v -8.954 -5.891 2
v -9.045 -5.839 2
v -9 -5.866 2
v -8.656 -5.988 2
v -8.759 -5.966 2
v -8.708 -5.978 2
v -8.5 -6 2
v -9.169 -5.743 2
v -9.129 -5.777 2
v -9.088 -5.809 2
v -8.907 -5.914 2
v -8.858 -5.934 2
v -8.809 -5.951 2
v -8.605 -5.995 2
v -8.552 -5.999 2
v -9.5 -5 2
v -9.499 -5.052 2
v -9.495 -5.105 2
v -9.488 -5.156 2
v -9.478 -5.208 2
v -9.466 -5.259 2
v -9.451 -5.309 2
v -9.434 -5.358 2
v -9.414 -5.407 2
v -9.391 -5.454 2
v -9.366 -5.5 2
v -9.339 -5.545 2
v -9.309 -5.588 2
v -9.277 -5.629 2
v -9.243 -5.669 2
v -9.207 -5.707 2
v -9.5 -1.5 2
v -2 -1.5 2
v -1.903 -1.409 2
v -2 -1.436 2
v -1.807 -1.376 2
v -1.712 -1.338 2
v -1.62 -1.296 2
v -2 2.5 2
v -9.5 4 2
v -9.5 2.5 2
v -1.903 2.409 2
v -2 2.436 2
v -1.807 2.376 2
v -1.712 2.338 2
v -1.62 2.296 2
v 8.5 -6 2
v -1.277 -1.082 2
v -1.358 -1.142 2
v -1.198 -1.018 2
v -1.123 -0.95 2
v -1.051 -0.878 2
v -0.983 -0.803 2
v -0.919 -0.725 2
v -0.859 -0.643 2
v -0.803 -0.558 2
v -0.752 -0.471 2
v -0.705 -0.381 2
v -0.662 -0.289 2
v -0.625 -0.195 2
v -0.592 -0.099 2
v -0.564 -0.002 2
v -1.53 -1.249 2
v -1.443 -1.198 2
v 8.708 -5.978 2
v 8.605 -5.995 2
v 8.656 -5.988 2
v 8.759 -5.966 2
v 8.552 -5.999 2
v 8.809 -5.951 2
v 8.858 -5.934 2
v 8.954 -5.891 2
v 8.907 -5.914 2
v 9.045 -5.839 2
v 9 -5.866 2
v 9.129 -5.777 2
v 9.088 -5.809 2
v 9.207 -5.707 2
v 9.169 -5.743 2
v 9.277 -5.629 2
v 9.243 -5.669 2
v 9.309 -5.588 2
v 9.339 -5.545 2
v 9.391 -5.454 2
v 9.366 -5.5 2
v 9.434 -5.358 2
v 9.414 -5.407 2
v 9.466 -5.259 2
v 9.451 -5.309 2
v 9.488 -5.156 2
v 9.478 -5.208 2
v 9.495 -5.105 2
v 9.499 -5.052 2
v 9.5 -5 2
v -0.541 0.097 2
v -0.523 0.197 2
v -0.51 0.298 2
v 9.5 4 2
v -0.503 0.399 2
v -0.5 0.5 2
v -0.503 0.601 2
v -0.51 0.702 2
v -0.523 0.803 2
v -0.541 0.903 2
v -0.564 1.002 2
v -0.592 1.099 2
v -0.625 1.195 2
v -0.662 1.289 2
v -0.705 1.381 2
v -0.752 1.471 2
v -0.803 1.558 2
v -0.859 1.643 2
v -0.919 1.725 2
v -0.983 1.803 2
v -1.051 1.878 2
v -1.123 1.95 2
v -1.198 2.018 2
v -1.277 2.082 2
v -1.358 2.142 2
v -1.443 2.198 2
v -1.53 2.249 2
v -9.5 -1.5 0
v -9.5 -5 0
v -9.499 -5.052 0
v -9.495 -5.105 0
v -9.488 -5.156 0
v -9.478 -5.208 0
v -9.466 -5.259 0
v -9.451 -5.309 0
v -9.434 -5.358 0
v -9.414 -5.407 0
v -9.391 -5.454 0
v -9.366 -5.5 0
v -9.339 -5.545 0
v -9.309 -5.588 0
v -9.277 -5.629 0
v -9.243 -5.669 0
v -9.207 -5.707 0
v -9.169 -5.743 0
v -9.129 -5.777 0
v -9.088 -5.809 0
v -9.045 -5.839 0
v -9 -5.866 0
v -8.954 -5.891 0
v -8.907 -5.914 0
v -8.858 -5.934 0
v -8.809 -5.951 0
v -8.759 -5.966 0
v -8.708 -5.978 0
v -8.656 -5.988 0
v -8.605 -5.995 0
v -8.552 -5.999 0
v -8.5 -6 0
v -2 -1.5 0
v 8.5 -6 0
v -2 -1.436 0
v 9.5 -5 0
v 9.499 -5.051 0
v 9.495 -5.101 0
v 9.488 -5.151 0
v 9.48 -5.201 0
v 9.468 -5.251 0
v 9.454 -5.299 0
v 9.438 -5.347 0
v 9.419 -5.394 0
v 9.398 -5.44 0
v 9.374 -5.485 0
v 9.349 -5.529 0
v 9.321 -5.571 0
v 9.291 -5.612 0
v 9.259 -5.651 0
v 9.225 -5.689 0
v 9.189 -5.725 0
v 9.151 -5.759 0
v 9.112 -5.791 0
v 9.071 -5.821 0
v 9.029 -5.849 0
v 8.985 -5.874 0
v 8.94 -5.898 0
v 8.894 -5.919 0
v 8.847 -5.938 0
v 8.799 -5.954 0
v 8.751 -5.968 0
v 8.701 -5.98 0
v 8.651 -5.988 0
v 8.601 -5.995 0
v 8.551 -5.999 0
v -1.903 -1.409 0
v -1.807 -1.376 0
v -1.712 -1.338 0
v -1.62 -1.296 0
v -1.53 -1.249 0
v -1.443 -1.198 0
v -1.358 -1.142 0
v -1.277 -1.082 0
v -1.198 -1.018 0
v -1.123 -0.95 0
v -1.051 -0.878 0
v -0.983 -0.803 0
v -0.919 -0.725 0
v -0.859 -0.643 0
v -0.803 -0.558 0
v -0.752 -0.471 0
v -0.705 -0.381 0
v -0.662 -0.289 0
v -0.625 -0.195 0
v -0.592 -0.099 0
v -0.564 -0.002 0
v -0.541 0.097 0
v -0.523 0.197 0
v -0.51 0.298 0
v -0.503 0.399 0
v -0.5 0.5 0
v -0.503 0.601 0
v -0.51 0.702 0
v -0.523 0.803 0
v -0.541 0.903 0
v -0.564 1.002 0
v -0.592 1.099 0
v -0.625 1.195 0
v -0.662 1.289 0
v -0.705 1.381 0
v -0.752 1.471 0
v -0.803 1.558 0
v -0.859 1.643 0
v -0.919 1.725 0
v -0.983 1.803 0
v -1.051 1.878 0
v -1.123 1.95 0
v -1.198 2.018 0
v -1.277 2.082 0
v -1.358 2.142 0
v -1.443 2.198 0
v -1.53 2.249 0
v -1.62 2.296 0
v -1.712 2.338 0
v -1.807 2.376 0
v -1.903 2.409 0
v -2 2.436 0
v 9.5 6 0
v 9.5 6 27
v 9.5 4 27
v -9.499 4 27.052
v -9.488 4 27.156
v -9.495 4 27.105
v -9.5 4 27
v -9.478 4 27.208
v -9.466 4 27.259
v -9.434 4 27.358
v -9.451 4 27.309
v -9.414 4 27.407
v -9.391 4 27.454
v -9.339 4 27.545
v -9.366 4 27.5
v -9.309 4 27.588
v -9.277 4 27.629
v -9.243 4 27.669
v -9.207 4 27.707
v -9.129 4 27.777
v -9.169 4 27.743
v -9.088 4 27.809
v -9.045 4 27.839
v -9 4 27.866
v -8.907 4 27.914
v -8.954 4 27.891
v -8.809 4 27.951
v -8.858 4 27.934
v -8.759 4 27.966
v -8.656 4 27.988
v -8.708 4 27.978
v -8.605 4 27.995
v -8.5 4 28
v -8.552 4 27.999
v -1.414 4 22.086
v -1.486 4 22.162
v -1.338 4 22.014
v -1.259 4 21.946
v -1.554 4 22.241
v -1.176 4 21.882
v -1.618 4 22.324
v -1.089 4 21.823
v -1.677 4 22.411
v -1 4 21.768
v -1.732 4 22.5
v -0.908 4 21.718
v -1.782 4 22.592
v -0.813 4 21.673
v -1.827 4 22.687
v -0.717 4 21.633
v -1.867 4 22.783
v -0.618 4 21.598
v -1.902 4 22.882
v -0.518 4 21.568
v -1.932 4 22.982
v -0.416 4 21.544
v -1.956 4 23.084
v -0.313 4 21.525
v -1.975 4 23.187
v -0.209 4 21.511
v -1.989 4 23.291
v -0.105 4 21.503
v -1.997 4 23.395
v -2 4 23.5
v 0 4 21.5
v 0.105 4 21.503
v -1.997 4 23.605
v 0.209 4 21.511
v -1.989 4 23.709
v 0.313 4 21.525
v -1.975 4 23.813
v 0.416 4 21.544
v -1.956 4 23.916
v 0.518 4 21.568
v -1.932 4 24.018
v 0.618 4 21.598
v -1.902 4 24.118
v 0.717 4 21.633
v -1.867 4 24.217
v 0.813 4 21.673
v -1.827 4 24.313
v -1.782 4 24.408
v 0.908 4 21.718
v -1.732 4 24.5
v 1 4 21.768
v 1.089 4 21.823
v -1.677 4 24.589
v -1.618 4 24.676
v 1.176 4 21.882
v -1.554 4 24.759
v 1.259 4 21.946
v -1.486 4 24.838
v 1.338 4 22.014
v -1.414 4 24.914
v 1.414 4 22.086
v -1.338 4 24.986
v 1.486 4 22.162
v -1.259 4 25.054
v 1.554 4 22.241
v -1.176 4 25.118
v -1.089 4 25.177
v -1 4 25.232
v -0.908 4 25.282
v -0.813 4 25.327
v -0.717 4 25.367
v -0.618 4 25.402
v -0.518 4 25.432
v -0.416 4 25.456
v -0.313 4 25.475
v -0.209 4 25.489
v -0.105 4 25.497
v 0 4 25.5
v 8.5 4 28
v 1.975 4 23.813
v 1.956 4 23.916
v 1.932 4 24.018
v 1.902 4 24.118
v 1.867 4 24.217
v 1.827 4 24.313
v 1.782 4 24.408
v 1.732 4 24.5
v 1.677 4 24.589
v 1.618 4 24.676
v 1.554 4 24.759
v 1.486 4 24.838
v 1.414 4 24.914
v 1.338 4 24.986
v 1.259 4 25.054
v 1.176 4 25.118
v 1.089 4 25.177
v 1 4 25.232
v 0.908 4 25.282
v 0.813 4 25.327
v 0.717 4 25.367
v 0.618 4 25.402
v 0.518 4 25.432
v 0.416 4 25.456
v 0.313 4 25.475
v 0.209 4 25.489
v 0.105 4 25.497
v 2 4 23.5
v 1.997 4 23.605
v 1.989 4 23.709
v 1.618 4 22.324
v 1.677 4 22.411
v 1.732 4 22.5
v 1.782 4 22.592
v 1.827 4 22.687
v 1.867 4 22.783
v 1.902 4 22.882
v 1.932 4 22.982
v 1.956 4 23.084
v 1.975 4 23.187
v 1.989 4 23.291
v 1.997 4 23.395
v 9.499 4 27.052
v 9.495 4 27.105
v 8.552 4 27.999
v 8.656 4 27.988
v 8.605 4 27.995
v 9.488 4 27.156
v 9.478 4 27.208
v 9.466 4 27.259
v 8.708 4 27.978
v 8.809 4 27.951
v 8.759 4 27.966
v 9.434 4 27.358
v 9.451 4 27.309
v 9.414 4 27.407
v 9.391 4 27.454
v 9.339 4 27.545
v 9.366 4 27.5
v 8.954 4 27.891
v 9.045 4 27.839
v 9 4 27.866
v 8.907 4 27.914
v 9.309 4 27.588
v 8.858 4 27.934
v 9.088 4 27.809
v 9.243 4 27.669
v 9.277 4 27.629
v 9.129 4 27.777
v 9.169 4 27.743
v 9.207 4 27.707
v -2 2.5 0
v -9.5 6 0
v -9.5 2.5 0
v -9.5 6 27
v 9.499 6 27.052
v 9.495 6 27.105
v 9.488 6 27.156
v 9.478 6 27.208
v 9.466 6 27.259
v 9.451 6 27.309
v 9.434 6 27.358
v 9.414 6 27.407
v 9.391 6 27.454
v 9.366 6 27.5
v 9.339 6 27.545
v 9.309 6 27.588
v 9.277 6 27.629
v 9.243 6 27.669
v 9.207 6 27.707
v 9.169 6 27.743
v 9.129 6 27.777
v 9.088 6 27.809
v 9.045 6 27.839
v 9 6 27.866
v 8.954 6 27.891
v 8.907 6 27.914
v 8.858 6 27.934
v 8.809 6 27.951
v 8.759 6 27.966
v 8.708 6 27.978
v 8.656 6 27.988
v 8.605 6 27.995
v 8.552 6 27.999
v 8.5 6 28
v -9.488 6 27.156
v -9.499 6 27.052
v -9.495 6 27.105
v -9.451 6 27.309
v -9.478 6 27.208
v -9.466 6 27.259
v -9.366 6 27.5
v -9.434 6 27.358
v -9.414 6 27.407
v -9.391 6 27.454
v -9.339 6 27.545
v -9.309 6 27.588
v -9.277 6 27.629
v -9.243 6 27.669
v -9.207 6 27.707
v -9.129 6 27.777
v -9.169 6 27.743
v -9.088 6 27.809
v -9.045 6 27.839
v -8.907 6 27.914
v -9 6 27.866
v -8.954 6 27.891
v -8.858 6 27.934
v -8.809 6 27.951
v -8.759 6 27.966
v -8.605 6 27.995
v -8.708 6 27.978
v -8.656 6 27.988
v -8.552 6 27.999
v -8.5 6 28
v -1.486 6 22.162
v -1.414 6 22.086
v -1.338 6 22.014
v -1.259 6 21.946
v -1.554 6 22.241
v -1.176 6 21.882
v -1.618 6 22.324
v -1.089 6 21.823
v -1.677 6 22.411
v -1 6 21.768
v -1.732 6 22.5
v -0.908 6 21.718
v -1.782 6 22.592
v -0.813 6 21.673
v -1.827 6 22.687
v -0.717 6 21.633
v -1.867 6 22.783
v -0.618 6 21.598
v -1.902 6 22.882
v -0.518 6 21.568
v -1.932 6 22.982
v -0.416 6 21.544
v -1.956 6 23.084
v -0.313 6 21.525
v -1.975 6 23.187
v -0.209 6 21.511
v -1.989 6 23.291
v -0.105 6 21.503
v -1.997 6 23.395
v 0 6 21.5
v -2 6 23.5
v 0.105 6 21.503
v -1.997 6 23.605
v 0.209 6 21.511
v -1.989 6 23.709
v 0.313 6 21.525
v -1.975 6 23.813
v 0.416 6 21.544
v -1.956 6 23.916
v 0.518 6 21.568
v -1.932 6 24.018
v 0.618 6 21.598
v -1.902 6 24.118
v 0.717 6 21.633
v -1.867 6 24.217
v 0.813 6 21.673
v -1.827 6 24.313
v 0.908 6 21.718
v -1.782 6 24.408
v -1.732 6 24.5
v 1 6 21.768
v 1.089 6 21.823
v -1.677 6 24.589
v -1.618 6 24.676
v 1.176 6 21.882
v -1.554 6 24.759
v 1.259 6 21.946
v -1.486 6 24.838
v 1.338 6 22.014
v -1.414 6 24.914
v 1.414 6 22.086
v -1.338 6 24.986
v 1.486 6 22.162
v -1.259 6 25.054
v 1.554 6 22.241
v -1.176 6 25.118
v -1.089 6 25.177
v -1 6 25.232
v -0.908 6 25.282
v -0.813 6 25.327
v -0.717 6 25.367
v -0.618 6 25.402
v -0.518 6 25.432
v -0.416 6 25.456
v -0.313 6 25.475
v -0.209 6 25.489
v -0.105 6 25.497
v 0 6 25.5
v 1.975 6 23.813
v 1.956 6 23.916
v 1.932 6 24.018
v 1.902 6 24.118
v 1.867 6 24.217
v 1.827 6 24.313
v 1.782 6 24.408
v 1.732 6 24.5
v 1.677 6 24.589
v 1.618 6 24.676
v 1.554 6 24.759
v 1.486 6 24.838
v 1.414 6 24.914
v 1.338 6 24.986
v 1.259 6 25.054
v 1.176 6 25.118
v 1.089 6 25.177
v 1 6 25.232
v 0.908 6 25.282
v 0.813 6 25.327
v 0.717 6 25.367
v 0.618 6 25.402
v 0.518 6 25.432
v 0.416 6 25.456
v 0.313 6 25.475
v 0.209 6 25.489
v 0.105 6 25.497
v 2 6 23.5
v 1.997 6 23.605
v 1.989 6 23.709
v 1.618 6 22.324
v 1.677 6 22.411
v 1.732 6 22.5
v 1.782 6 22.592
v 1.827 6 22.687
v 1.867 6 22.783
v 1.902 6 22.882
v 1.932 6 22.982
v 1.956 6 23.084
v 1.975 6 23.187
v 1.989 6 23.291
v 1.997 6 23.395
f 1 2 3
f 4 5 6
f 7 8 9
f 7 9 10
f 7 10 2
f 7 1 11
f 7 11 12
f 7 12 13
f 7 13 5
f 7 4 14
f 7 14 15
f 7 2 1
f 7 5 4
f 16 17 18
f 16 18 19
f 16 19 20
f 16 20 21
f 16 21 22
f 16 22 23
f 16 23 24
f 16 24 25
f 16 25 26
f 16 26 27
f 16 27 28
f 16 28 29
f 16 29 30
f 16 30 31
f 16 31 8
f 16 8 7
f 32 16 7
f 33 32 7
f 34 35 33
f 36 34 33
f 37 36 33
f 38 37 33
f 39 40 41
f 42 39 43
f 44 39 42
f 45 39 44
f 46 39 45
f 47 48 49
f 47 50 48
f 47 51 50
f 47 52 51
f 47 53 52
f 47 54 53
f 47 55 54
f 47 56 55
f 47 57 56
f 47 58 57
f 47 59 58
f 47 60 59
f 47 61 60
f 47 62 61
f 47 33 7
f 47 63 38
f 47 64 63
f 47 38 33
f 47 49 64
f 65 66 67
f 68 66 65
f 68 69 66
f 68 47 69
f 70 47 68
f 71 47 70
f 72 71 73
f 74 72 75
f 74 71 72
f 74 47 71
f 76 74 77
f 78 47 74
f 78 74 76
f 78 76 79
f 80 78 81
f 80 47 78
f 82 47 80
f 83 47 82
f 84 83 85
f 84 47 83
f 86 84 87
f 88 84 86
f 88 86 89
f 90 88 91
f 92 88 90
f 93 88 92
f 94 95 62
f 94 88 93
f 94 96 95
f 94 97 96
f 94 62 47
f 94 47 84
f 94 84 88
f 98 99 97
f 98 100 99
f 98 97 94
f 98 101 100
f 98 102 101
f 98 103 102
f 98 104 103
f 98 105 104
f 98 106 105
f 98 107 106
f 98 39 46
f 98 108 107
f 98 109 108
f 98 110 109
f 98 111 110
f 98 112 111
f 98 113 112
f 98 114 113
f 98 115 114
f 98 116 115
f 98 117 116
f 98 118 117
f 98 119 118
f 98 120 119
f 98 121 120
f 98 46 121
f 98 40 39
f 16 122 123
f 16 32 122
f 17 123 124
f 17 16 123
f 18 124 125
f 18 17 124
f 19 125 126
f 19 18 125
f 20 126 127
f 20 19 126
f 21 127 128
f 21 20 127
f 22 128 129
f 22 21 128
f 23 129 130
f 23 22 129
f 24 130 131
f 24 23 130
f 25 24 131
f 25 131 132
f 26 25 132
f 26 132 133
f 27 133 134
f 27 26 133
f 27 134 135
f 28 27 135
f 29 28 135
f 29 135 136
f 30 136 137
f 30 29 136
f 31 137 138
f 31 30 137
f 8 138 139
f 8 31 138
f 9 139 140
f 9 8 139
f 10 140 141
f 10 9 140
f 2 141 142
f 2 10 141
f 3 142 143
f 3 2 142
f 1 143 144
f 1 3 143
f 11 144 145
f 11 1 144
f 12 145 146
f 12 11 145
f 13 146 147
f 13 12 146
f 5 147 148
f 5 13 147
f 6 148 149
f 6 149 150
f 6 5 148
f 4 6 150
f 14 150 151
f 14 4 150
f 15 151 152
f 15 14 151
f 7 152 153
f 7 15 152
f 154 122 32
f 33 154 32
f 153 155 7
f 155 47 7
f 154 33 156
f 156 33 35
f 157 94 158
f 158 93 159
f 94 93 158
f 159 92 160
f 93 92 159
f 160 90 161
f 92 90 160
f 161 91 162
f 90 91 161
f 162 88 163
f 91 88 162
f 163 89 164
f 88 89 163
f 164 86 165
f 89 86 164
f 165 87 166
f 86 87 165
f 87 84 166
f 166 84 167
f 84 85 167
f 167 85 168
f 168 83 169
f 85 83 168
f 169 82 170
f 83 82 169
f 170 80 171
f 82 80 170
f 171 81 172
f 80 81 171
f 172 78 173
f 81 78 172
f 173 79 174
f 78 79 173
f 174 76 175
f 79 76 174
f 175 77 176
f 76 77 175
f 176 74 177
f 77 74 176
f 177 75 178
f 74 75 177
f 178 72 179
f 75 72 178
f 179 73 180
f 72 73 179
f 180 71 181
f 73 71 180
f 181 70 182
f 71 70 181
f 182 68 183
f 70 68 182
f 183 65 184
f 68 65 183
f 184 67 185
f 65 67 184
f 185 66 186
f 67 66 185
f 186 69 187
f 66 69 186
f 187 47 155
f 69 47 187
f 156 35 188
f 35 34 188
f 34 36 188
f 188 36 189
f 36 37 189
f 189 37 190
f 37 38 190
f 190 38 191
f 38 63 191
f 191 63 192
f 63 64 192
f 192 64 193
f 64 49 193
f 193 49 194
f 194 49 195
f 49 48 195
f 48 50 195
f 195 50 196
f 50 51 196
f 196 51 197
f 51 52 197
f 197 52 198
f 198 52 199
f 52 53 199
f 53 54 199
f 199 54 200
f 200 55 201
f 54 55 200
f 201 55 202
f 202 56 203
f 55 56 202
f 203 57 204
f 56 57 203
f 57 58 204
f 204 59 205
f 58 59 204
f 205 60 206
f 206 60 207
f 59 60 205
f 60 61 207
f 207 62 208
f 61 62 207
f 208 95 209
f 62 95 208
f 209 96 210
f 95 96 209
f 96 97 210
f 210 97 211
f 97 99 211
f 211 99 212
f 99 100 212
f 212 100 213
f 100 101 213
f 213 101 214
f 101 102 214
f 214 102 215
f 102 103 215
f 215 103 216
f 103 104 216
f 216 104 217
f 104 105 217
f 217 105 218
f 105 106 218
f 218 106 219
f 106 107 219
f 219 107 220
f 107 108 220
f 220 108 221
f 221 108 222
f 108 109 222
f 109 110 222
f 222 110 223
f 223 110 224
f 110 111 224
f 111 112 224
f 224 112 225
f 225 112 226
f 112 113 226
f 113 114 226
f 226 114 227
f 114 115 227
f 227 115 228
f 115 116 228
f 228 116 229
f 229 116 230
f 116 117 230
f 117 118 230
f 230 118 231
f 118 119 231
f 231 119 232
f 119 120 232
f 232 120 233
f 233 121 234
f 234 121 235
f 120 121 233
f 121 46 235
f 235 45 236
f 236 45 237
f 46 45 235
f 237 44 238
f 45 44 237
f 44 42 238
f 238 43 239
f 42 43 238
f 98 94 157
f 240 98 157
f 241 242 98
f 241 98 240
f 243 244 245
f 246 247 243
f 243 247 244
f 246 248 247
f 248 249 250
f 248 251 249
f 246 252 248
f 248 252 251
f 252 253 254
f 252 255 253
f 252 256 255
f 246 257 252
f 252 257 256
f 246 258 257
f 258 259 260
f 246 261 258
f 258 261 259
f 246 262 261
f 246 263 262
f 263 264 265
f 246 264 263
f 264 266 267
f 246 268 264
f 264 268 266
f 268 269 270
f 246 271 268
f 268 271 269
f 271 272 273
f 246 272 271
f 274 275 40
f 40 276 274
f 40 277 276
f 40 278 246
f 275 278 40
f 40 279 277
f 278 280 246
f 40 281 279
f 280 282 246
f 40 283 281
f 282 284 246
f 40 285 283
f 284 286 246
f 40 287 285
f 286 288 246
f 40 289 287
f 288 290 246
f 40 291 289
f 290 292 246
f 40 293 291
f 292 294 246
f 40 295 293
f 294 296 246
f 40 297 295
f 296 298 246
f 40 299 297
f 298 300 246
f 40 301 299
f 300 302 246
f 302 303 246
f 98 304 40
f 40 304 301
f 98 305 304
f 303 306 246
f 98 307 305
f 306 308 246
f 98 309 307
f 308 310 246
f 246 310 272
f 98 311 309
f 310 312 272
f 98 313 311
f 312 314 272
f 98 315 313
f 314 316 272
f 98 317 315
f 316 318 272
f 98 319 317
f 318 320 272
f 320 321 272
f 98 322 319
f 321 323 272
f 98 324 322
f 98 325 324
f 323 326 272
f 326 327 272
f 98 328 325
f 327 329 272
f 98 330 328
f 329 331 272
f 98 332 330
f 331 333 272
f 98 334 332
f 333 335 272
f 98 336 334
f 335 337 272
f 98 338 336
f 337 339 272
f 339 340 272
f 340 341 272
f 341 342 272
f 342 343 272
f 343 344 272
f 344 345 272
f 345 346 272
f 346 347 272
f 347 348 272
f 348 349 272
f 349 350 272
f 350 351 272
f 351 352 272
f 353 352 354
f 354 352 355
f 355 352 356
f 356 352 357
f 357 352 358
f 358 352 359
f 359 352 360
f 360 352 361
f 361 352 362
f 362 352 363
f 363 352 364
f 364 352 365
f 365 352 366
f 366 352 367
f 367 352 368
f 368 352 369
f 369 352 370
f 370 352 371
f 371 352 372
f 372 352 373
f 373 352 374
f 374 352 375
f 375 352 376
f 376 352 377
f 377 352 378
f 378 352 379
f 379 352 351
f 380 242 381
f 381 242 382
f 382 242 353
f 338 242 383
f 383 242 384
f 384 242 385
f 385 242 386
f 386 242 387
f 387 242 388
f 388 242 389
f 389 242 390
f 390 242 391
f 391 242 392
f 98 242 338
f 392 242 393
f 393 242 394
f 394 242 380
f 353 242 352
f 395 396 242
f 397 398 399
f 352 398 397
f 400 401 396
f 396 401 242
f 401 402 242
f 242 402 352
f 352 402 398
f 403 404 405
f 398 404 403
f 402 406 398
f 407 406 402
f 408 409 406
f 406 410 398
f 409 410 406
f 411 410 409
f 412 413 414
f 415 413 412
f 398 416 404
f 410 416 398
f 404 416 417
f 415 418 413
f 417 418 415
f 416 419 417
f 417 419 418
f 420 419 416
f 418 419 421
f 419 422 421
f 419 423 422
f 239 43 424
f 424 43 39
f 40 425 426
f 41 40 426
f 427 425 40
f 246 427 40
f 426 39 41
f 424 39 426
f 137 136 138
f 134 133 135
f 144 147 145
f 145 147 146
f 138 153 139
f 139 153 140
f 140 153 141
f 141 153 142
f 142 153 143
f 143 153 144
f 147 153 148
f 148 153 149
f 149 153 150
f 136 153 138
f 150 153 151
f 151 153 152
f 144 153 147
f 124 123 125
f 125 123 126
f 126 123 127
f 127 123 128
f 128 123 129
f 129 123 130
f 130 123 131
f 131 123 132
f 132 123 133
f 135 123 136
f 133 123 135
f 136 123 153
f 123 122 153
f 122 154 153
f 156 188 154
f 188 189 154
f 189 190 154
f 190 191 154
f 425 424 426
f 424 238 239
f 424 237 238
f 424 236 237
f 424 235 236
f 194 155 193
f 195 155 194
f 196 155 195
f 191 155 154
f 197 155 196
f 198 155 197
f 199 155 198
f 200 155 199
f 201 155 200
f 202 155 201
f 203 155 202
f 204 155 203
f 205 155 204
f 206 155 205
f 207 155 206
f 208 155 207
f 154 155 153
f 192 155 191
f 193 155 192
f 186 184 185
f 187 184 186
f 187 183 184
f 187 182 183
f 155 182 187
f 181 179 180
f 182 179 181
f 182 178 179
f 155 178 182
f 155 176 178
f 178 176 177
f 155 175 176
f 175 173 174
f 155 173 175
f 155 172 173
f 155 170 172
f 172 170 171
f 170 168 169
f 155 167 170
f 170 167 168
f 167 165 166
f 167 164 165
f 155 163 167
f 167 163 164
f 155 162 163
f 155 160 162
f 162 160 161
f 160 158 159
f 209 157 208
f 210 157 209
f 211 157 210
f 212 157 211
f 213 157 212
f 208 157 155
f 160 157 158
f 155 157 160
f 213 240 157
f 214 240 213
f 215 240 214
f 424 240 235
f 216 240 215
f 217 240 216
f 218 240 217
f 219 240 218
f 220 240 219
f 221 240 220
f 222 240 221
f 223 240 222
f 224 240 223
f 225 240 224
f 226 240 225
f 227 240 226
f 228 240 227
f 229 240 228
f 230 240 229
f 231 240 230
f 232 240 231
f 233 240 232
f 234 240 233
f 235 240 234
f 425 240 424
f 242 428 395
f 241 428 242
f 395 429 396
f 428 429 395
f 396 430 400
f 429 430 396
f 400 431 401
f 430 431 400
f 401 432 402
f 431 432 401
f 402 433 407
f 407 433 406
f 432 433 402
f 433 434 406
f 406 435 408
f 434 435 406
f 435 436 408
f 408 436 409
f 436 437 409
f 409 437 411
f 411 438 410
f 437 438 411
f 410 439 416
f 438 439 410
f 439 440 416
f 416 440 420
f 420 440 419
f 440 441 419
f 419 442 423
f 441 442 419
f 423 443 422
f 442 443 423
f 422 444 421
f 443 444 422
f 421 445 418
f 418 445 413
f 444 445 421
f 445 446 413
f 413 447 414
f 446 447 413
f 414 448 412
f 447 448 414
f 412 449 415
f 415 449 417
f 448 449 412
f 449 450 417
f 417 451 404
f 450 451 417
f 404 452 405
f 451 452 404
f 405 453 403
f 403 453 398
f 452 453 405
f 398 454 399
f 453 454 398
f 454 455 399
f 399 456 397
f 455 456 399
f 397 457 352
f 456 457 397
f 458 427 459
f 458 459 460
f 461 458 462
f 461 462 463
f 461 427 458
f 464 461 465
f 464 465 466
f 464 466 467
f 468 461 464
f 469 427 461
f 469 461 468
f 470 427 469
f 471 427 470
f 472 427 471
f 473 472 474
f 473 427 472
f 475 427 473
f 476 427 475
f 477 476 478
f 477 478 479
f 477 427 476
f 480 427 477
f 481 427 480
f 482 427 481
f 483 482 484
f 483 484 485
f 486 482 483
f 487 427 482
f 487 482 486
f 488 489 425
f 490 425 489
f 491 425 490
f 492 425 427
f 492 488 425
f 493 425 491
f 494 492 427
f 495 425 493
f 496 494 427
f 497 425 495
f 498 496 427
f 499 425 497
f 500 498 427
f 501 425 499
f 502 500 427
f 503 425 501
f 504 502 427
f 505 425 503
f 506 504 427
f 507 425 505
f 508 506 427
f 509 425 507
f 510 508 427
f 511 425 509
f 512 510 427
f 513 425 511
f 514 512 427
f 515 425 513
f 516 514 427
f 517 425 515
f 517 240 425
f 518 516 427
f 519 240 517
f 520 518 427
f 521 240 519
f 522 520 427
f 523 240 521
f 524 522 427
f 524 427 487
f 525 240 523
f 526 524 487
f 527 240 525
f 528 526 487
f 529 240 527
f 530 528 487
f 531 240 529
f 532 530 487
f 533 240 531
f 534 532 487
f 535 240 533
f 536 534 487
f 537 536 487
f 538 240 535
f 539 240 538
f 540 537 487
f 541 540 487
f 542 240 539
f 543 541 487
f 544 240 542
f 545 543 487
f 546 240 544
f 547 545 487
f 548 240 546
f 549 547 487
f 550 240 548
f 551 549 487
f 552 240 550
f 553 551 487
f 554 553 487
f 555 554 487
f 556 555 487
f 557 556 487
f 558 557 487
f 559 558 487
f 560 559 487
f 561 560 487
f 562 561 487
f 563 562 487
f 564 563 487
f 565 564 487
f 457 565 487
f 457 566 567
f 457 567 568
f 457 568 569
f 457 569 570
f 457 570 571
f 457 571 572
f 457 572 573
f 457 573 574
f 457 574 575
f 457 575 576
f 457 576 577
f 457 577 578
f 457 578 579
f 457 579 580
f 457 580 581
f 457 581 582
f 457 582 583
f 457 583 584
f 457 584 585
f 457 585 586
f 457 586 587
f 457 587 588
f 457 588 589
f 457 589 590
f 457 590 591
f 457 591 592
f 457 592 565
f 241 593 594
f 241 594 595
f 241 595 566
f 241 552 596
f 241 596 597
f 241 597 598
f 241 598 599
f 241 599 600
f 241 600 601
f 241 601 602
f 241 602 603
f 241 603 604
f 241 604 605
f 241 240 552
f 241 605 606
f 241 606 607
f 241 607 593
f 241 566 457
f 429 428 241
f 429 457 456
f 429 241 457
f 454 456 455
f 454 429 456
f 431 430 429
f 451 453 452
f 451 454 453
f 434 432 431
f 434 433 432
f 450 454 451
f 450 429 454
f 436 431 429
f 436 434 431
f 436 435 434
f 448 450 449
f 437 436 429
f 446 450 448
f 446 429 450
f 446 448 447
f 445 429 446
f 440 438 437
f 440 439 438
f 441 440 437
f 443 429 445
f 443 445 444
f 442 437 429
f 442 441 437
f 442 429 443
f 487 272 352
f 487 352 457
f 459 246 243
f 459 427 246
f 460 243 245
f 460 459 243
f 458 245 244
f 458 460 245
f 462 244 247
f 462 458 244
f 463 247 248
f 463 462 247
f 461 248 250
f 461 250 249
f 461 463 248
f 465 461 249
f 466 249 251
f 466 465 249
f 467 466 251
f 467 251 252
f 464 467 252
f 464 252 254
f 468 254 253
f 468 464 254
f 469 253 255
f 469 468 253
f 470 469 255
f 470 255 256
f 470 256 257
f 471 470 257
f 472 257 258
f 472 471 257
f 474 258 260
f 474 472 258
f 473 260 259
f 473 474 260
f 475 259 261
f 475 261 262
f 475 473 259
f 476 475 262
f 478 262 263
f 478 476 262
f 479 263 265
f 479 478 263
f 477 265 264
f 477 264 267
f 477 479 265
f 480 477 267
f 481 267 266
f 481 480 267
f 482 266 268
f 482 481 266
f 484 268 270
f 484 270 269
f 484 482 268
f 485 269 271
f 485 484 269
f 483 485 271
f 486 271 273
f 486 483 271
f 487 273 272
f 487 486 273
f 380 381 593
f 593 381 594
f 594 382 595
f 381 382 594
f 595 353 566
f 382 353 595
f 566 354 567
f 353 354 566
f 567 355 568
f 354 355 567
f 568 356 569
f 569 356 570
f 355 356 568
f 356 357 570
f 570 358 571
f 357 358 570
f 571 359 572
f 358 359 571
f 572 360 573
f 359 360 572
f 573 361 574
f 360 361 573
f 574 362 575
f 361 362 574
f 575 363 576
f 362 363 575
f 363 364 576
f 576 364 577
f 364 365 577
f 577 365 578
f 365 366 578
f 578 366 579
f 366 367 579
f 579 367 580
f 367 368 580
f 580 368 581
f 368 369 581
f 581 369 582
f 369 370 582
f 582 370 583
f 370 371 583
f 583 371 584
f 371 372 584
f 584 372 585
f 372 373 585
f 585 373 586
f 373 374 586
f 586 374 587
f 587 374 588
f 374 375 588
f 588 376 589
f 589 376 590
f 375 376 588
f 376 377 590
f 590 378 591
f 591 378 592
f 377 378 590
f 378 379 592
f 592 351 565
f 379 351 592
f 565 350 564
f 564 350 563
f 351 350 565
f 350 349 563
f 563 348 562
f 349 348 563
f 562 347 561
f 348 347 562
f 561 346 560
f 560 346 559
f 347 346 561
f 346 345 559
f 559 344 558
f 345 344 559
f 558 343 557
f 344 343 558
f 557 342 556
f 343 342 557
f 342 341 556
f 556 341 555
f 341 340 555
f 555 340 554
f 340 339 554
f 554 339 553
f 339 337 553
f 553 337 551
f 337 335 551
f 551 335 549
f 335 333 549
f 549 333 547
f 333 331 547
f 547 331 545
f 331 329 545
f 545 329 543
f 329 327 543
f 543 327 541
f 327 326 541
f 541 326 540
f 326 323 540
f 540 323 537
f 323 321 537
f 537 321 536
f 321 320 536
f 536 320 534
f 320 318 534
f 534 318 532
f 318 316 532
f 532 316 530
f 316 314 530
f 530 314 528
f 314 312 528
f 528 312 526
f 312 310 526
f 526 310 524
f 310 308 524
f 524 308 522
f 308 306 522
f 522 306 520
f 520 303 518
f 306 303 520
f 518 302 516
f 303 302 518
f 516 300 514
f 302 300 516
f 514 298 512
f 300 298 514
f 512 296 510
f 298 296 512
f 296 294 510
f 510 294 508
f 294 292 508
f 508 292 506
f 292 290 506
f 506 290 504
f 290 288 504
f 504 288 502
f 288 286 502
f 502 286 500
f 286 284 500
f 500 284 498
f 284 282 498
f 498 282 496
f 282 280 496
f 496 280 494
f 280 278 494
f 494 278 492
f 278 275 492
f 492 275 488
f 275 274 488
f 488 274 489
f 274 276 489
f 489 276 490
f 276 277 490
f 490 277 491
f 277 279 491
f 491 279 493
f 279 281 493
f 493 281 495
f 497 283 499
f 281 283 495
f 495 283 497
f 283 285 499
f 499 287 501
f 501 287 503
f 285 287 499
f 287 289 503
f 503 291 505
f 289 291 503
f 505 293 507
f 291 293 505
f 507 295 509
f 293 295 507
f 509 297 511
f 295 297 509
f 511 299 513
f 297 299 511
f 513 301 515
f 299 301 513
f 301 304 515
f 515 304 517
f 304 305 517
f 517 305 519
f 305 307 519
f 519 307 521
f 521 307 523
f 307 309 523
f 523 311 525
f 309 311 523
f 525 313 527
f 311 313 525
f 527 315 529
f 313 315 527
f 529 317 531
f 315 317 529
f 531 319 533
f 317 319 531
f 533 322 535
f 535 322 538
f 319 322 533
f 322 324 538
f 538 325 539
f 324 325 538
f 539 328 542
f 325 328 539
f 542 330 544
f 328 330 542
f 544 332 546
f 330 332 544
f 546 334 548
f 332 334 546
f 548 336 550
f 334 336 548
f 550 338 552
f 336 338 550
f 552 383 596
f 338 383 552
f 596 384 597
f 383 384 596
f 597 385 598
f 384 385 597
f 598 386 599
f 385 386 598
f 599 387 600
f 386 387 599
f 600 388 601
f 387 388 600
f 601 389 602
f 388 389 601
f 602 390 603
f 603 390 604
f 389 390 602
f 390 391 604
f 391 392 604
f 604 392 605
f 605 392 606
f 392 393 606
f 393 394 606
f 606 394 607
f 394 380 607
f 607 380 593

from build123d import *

# Parameters (mm, degrees)
BOX_W             = 19
BOX_H             = 12
BOX_DEPTH         = 2
BOX001_W          = 28
BOX001_H          = 19
BOX001_DEPTH      = 2
CYLINDER_R        = 2
CYLINDER_DEPTH    = 2
BOX002_W          = 8
BOX002_H          = 4
BOX002_DEPTH      = 2
CYLINDER001_R     = 2
CYLINDER001_DEPTH = 2
FILLET_R          = 1


with BuildPart() as part:
    # Box → Box (join)
    with BuildSketch(Plane(origin=(-9.5, -6, 0), x_dir=(1, 0, 0), z_dir=(0, 0, 1))):
        with Locations((9.5, 6)):
            Rectangle(BOX_W, BOX_H)
    extrude(amount=BOX_DEPTH)

    # Box001 → Box001 (join)
    with BuildSketch(Plane(origin=(-9.5, 4, 0), x_dir=(0, 0, 1), z_dir=(0, 1, 0))):
        with Locations((14, 9.5)):
            Rectangle(BOX001_W, BOX001_H)
    extrude(amount=BOX001_DEPTH)

    # Cylinder → Cylinder (cut)
    with BuildSketch(Plane(origin=(-2.5, 0.5, 0), x_dir=(1, 0, 0), z_dir=(0, 0, 1))):
        Circle(CYLINDER_R)
    extrude(amount=CYLINDER_DEPTH, mode=Mode.SUBTRACT)

    # Box002 → Box002 (cut)
    with BuildSketch(Plane(origin=(-10, -1.5, 0), x_dir=(1, 0, 0), z_dir=(0, 0, 1))):
        with Locations((4, 2)):
            Rectangle(BOX002_W, BOX002_H)
    extrude(amount=BOX002_DEPTH, mode=Mode.SUBTRACT)

    # Cylinder001 → Cylinder001 (cut)
    with BuildSketch(Plane(origin=(0, 6, 23.5), x_dir=(1, 0, 0), z_dir=(0, -1, 0))):
        Circle(CYLINDER001_R)
    extrude(amount=CYLINDER001_DEPTH, mode=Mode.SUBTRACT)

    # Fillet
    fillet_edges = [part.edges().sort_by_distance(p)[0] for p in [
        (-9.5, 5, 28),
        (9.5, 5, 28),
        (9.5, -6, 1),
        (-9.5, -6, 1),
    ]]
    fillet(fillet_edges, radius=FILLET_R)


solid = part.part
